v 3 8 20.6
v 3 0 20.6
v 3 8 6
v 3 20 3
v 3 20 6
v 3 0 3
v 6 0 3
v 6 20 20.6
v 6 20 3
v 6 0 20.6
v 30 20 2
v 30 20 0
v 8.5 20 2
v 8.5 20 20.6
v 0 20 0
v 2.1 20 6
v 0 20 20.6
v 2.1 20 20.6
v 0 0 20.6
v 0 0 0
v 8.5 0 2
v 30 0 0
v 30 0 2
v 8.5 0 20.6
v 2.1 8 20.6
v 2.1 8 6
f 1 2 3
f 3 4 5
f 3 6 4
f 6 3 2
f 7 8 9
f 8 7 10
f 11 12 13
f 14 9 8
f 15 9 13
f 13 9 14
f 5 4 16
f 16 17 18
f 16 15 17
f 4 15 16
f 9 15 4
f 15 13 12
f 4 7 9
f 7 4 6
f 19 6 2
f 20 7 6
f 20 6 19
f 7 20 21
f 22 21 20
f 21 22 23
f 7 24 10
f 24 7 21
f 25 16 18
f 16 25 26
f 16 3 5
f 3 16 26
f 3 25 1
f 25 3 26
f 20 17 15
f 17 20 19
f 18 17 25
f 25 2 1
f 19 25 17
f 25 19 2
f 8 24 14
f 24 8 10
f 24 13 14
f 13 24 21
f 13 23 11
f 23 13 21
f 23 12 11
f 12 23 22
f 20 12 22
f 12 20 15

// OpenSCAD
/* File: ftdi_clip2.scad
 * Clip for 3rd FTDI 
 * Author: deh
 * Latest edit: 20191005
 */

 $fn = 20;
 
 thick = 2.0;

/* FTDI unit goes between pcb and case wall */
ftd_base_len = 35;	// Lenth of base part
ftd_post_len = 15;	// Length of tall part
ftd_slot_base = thick;// Offset from bottom of case
ftd_slot_wid = 2;		// Width of pcb

ftd_slot_wid2 = 3.0;	// Width at ahead of IC
ftd_slot_wid3 = 3.9;	// Width at IC
ftd_in_wid = 2.0;	// Inner wall width
ftd_tot_wid = ftd_slot_wid2+ftd_in_wid+1.5;	// Width total
ftd_tot_len = 20;
ftd_ic_len = 12;	// IC length
ftd_tot_ht = 18.6;

/* ***** fillet *****
 * r = radius of fillet
 * l = length of fillet
 fillet (r,l);
*/
module fillet(r,l)
{
   difference()
   {
     union()
     {
       cube([2*r,2*r,l]);
     }
     union()
     {
       translate ([r,r,0])
           cylinder(d = 2*r + 0.1, h = l, center = false);
       translate([r,0,0])
           cube([r,2*r,l],center = false);
       translate([0,r,0])
           cube([2*r,r,l],center = false);
     }
   }
}
module ftdi_post()
{
echo(ftd_tot_wid,"ftd_tot_wid");
	translate([0,0,thick])
	{
		difference()
		{
			union()
			{
				translate([0,0,0])
					cube([ftd_tot_wid+2, ftd_tot_len, ftd_tot_ht],center=false);

/*				translate([0.05,ftd_tot_len,-.05])
					rotate([0,-90,0])
					rotate([90.0,0])
			 			fillet (4,ftd_tot_len);	
*/
			}
			union()
			{
              translate([1,0,0])
              {  
				translate([ftd_in_wid,0,1])
					cube([ftd_slot_wid2,ftd_tot_len,ftd_tot_ht],center=false);
				ftx = ftd_in_wid - (ftd_slot_wid3 - ftd_slot_wid2);
				fty = ftd_tot_len - ftd_ic_len;
				translate([ftx,fty,4])
					cube([ftd_slot_wid3,ftd_ic_len,ftd_tot_ht],center=false);
              }
			
			}
	 	}
	}
}
module ftdi_base(a)
{
    translate([0,0,0])
        cube([30,20,2],center=false);
}

ftdi_post();
ftdi_base([0,0,0]);
 
